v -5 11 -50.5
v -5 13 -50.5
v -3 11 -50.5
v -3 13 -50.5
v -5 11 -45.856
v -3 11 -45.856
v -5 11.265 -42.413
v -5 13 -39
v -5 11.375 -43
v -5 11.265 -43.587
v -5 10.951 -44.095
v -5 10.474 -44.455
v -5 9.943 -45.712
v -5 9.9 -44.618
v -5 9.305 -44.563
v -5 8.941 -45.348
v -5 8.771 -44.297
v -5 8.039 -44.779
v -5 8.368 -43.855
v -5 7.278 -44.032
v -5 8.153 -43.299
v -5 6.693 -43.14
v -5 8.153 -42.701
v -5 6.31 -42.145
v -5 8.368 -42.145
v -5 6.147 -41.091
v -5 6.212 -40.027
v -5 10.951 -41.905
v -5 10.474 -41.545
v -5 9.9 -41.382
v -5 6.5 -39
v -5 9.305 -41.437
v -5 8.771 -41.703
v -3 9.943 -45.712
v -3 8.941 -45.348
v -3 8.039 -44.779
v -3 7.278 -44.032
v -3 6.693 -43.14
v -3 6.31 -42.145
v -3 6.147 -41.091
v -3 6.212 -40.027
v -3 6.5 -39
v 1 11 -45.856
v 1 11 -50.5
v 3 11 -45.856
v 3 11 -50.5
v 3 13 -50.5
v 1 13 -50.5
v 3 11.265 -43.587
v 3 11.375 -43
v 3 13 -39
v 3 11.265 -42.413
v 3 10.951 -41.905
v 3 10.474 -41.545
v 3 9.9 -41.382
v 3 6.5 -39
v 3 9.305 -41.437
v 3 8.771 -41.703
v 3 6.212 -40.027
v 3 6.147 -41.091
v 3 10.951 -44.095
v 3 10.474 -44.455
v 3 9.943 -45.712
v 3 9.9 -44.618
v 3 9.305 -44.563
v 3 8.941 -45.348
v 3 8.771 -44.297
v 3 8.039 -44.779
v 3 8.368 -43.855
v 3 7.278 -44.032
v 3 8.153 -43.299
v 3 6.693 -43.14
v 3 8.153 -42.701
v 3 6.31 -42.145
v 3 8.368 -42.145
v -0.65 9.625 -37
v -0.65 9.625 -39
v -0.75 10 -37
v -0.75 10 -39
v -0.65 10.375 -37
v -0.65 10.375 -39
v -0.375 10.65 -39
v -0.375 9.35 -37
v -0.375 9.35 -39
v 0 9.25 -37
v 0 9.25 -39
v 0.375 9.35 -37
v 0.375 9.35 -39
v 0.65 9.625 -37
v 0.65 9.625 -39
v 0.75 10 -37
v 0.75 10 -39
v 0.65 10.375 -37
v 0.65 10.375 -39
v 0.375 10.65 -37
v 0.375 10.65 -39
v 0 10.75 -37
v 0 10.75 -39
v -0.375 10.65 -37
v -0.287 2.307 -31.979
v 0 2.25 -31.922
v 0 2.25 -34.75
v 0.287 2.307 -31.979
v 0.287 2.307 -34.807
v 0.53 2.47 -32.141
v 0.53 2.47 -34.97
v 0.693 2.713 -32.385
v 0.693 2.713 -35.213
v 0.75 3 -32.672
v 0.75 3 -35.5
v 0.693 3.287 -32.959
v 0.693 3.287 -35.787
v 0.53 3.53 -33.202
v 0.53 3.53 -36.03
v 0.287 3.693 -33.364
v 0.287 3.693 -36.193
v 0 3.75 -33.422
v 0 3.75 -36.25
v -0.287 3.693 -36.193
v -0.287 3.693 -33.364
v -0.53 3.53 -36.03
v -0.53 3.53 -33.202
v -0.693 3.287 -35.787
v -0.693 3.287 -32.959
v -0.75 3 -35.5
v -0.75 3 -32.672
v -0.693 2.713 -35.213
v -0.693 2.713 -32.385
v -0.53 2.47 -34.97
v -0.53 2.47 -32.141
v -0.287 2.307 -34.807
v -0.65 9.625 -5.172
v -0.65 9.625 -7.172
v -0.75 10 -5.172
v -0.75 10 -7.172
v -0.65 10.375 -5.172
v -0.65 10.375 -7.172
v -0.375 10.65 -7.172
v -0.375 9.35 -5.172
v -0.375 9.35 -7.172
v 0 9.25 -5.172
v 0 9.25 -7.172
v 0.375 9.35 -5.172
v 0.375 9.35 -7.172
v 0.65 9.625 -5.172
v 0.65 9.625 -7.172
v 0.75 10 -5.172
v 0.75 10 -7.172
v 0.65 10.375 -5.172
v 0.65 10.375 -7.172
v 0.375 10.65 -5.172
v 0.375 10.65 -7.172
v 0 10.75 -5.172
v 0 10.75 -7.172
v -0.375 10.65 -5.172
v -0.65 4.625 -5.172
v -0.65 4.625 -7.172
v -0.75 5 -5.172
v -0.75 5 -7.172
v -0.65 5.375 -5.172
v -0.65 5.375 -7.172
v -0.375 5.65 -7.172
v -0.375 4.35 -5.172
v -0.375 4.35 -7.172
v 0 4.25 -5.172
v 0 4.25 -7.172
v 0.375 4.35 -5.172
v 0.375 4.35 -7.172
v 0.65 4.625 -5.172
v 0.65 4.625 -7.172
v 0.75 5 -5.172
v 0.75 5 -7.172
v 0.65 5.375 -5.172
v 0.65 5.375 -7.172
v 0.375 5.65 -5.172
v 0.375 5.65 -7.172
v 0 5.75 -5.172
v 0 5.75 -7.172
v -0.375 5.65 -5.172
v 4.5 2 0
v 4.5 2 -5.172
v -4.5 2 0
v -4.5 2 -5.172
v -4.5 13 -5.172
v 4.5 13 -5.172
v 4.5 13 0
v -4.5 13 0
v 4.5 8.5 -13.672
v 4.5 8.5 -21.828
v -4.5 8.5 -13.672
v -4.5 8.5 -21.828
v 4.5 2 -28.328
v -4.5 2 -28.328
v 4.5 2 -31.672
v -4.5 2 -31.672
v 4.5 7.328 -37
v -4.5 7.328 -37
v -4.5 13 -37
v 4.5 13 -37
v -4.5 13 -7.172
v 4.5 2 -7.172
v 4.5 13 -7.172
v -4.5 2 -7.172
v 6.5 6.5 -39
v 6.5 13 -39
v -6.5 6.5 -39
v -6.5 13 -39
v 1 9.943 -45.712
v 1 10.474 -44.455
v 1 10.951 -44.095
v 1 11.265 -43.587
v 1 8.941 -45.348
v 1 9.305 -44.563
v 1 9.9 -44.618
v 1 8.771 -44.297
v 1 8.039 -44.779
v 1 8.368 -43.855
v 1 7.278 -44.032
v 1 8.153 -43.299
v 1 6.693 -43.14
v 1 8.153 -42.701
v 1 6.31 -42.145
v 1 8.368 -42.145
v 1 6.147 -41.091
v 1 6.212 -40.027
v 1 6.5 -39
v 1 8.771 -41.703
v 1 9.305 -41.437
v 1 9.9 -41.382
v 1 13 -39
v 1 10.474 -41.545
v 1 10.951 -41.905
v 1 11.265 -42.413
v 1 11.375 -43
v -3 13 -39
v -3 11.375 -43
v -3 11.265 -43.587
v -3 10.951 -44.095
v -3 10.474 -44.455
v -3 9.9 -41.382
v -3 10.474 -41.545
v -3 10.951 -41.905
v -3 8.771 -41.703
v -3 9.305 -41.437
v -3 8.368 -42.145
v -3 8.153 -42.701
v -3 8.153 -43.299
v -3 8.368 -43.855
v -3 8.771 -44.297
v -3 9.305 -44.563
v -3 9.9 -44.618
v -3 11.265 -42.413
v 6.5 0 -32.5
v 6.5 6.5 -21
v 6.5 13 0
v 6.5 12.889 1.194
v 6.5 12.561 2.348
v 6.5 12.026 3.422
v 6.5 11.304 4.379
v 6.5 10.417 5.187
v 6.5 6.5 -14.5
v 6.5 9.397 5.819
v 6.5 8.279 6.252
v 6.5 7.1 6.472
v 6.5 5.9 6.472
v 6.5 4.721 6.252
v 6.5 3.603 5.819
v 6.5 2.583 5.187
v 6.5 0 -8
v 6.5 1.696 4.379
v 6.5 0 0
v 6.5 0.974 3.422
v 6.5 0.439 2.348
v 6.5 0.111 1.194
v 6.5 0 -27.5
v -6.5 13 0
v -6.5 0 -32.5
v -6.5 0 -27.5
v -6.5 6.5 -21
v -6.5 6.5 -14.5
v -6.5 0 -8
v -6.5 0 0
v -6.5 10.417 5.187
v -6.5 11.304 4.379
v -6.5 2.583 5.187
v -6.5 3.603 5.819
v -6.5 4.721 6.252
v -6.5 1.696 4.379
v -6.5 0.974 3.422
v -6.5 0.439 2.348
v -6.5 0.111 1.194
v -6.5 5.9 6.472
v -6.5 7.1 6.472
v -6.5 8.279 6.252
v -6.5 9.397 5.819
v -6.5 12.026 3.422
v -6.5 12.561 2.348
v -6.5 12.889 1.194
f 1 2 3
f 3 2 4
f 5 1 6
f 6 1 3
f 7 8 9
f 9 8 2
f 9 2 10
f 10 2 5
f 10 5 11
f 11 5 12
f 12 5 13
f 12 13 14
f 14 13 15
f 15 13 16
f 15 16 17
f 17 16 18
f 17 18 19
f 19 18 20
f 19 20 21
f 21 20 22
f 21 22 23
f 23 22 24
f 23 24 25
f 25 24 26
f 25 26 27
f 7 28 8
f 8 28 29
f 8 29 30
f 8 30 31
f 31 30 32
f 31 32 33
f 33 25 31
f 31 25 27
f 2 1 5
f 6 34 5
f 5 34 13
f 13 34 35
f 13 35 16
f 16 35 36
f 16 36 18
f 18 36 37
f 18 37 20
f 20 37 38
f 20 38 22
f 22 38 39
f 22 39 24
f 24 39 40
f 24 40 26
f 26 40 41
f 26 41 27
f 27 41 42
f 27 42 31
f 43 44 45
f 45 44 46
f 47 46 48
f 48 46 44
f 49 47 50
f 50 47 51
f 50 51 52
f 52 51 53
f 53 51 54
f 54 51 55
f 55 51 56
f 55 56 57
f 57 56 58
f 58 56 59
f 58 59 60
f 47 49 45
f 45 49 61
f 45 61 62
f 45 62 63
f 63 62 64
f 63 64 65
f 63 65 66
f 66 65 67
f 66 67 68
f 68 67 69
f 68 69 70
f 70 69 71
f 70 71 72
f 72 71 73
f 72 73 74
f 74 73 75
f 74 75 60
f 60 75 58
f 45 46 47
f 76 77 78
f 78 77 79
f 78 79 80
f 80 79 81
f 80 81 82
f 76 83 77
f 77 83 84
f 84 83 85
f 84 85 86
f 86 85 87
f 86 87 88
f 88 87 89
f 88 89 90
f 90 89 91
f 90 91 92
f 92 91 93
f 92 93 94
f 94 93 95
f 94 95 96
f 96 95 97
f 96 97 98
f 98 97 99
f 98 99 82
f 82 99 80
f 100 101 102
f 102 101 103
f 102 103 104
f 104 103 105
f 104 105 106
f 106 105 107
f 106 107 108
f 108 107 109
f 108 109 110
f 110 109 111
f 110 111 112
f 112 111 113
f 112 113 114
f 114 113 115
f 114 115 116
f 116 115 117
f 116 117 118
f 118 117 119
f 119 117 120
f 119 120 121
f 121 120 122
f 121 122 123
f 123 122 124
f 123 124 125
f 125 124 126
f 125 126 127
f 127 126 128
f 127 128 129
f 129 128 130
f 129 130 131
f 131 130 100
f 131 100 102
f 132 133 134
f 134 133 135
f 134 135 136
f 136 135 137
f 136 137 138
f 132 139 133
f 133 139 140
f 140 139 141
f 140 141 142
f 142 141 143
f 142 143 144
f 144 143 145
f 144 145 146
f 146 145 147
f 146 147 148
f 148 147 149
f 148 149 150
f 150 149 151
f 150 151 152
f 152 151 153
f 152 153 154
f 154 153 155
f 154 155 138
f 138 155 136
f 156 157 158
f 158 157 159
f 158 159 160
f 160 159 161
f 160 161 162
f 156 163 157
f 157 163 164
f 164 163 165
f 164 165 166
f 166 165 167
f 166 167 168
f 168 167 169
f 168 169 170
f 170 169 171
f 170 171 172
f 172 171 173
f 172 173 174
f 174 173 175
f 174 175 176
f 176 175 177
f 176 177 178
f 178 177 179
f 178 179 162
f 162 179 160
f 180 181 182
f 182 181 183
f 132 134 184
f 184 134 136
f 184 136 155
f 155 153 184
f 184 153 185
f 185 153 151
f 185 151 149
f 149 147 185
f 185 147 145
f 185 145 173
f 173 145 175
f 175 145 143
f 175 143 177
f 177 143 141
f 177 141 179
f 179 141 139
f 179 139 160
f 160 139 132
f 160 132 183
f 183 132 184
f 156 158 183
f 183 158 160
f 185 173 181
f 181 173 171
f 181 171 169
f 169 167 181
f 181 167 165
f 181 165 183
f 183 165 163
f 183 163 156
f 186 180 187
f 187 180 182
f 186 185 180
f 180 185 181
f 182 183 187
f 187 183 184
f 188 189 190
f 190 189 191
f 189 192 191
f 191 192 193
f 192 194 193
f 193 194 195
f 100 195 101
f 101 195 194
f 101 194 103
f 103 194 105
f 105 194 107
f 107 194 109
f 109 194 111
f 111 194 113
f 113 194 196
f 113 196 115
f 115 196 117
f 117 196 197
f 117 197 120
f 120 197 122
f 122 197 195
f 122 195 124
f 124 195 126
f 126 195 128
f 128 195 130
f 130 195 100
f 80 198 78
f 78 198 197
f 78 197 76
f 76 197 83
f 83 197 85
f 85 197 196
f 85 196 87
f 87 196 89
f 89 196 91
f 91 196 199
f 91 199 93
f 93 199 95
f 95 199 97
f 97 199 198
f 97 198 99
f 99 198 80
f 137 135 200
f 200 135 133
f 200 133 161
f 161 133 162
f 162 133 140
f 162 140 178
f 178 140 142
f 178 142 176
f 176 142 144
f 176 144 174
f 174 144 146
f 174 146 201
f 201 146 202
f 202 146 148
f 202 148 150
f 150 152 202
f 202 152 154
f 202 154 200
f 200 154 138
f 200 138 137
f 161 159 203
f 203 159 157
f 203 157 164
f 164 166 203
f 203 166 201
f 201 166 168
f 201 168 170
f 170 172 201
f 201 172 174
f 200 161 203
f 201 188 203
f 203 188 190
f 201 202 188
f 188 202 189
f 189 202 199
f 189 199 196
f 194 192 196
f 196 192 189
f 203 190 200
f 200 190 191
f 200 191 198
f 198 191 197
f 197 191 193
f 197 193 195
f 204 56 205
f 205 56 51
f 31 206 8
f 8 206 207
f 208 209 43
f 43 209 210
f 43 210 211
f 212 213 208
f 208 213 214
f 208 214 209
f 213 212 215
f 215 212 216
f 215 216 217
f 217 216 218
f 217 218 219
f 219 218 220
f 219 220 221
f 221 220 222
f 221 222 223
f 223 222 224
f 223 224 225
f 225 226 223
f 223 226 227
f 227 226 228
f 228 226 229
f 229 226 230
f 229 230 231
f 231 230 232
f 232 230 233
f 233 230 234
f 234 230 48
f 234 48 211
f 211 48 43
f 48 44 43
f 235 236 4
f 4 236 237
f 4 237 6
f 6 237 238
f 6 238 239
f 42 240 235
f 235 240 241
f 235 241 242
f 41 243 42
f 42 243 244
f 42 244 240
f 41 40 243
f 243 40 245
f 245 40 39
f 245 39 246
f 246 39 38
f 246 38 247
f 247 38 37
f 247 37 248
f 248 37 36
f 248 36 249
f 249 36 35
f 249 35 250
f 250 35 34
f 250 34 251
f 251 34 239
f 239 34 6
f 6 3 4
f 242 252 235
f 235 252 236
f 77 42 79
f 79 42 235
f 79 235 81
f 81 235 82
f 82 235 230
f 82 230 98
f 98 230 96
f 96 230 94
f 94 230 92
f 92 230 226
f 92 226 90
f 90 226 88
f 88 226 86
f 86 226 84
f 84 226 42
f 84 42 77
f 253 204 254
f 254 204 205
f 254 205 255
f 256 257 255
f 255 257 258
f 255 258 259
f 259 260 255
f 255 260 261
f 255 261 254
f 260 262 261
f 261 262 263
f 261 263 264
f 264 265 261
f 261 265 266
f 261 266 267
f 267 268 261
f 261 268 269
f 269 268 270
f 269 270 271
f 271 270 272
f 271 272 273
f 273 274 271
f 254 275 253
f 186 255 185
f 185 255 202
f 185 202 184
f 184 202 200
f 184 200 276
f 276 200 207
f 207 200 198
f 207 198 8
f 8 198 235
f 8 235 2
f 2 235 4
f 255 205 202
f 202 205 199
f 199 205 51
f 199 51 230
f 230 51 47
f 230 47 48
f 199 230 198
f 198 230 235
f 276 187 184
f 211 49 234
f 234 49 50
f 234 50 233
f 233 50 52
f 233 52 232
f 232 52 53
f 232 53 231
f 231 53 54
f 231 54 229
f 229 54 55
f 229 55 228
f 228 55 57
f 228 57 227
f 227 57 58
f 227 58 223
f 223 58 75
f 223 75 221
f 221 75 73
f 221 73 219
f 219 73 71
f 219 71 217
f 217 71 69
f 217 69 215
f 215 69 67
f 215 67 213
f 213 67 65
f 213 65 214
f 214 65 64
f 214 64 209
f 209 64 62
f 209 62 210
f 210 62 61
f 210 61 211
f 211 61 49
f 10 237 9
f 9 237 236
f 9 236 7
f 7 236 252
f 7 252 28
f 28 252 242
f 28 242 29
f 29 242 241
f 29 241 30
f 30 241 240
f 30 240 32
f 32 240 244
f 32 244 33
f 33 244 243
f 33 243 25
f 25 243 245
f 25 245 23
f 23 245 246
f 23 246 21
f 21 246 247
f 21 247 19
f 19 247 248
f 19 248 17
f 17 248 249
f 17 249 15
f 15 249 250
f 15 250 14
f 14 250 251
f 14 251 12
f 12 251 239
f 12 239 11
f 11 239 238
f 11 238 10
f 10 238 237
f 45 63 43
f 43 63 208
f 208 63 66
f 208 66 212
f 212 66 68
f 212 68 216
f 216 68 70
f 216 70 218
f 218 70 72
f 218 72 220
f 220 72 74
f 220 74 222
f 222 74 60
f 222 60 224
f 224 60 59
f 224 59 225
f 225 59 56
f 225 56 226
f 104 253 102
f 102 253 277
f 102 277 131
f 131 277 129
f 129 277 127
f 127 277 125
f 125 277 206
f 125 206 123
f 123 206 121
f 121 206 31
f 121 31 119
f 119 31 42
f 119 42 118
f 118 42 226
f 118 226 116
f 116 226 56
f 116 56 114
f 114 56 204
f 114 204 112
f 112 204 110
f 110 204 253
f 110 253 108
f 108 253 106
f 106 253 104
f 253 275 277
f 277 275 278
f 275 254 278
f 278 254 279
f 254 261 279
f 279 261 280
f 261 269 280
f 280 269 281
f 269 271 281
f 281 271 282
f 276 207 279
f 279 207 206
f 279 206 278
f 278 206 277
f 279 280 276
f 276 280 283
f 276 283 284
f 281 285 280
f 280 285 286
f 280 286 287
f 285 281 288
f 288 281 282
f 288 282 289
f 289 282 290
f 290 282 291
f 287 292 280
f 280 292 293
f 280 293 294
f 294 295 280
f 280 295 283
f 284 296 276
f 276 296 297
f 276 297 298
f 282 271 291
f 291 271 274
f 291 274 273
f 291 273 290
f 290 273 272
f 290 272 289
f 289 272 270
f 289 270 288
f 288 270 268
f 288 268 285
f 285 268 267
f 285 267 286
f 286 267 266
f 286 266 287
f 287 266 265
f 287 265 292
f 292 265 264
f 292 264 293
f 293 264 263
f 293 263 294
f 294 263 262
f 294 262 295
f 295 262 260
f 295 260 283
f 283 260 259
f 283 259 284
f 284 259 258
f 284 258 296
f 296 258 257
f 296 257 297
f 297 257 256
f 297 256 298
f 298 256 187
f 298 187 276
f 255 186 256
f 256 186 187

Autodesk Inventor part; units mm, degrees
ref_plane "YZ Plane" through (0, 0, 0) normal (1, 0, 0) x (0, 1, 0)
ref_plane "XZ Plane" through (0, 0, 0) normal (0, 1, 0) x (-1, 0, 0)
sketch "Sketch2" plane through (0, 0, 0) normal (1, 0, 0) x (0, 1, 0)
  line L0 (0, 0) -> (0, -8)
  line L1 (13, 0) -> (13, -21)
  arc A0 (13, 0) -> (0, 0) centre (6.5, 0) ccw
  line L2 (-3.1385, 0) -> (18.8309, 0) projected
  line L3 (0, -58.4723) -> (0, 17.3287) projected
  line L4 (0, -8) -> (6.5, -14.5)
  line L5 (0, -8) -> (9.1924, -8) construction
  line L6 (6.5, -14.5) -> (6.5, -21)
  line L7 (6.5, -21) -> (0, -27.5)
  line L8 (6.5, -21) -> (15.6924, -21) construction
  line L9 (0, -27.5) -> (0, -32.5)
  line L10 (0, -32.5) -> (6.5, -39)
  line L11 (0, -32.5) -> (9.1924, -32.5) construction
  line L12 (13, -21) -> (13, -39)
  line L13 (13, -39) -> (13, -45.5)
  arc A1 (6.5, -39) -> (13, -45.5) centre (11.1419, -40.8581) ccw
  circle A2 centre (9.75, -43) radius 1.625
  dimension "d49" = 4
  dimension "d4" = 13
  dimension "d9" = 45
  dimension "d10" = 6.5
  dimension "d11" = 8
  dimension "d12" = 6.5
  dimension "d13" = 135
  dimension "d14" = 6.5
  dimension "d15" = 5
  dimension "d16" = 45
  dimension "d17" = 6.5
  dimension "d18" = 18
  dimension "d19" = 6.5
  dimension "d20" = 5
  dimension "d21" = 3.25
  dimension "d22" = 3.25
  dimension "d23" = 2.5
  dimension "d94" = 21
extrude "Extrusion1" add sketch "Sketch2" along normal mid plane 13 contours L2 L1 L12 L13 A1 L10 L3 L7 L6 L4 L0 | A0 L2
sketch "Sketch3" plane through (-6.5, 13, 0) normal (0, 1, 0) x (1, 0, 0)
  line L0 (0, 39) -> (13, 39) projected
  line L1 (0, 46) -> (1.5, 46)
  line L2 (1.5, 46) -> (1.5, 39)
  line L3 (1.5, 39) -> (0, 39)
  line L4 (0, 39) -> (0, 46)
  line L5 (0, 0) -> (0, 45.5) projected
  line L6 (3.5, 46) -> (7.5, 46)
  line L7 (7.5, 46) -> (7.5, 39)
  line L8 (7.5, 39) -> (3.5, 39)
  line L9 (3.5, 39) -> (3.5, 46)
  line L10 (9.5, 46) -> (13, 46)
  line L11 (13, 46) -> (13, 39)
  line L12 (13, 39) -> (9.5, 39)
  line L13 (9.5, 39) -> (9.5, 46)
  line L14 (13, 45.5) -> (13, 0) projected
  point P0 (6.5, 0)
  dimension "d47" = 1.5
  dimension "d48" = 7
  dimension "d49" = 4
  dimension "d50" = 7
  dimension "d51" = 2
  dimension "d52" = 7
  dimension "d53" = 2
extrude "Extrusion2" cut sketch "Sketch3" against normal blind 13
ref_plane "Work Plane1" through (4.5, 0, 0) normal (1, 0, 0) x (0, 0, -1)
sketch "Sketch4" plane through (4.5, 0, 0) normal (1, 0, 0) x (0, 0, -1)
  arc A0 (0, 13) -> (0, 0) centre (0, 6.5) ccw projected
  line L0 (0, 13) -> (39, 13) projected
  line L1 (39, 13) -> (39, 6.5) projected
  line L2 (39, 6.5) -> (32.5, 0) projected
  line L3 (32.5, 0) -> (27.5, 0) projected
  line L4 (27.5, 0) -> (21, 6.5) projected
  line L5 (39, 13) -> (39, 6.5) projected
  line L6 (39, 6.5) -> (32.5, 0) projected
  line L7 (32.5, 0) -> (27.5, 0) projected
  line L8 (27.5, 0) -> (21, 6.5) projected
  line L9 (21, 6.5) -> (14.5, 6.5) projected
  line L10 (14.5, 6.5) -> (8, 0) projected
  line L11 (8, 0) -> (0, 0) projected
  arc A1 (0, 13) -> (0, 0) centre (0, 6.5) ccw projected
  line L12 (0, 13) -> (39, 13) projected
  line L13 (0, 13) -> (0, 2)
  line L14 (0, 2) -> (5.1716, 2)
  line L15 (7.1716, 2) -> (13.6716, 8.5)
  line L16 (7.1716, 2) -> (16.364, 2) construction
  line L17 (37, 13) -> (37, 7.3284)
  line L18 (37, 7.3284) -> (31.6716, 2)
  line L19 (37, 7.3284) -> (44.5355, 7.3284) construction
  line L20 (31.6716, 2) -> (28.3284, 2)
  line L21 (28.3284, 2) -> (21.8284, 8.5)
  line L22 (28.3284, 2) -> (37.5208, 2) construction
  line L23 (21.8284, 8.5) -> (13.6716, 8.5)
  line L24 (7.1716, 2) -> (7.1716, 13)
  line L25 (5.1716, 2) -> (5.1716, 13)
  line L26 (0, 13) -> (5.1716, 13)
  line L27 (7.1716, 13) -> (37, 13)
  dimension "d57" = 11
  dimension "d58" = 2
  dimension "d59" = 45
  dimension "d60" = 2
  dimension "d62" = 2
  dimension "d63" = 2
  dimension "d64" = 135
  dimension "d65" = 2
  dimension "d66" = 2
  dimension "d67" = 135
  dimension "d95" = 2
  dimension "d96" = 2
extrude "Extrusion3" cut sketch "Sketch4" against normal blind 9 contours L0 L25 L14 L13 | L0 L17 L18 L20 L21 L23 L15 L24
sketch "Sketch5" plane through (4.5, 2, -7.1716) normal (0, 0, -1) x (-1, 0, 0)
  line L0 (0, 11) -> (0, 1) projected
  line L1 (9, 1) -> (9, 11) projected
  line L2 (0, 11) -> (0, 0) projected
  line L3 (9, 0) -> (9, 11) projected
  line L4 (0, 11) -> (9, 11) projected
  circle A0 centre (4.5, 8) radius 0.75
  circle A1 centre (4.5, 3) radius 0.75
  line L5 (0, 0) -> (9, 0) projected
  point P0 (4.5, -2)
  dimension "d72" = 1.5
  dimension "d73" = 4.5
  dimension "d74" = 3
  dimension "d75" = 1.5
  dimension "d77" = 4.5
extrude "Extrusion4" cut sketch "Sketch5" against normal blind 2 contours A0 | A1
sketch "Sketch6" plane through (1, 13, -39) normal (0, 0, -1) x (-1, 0, 0)
  line L0 (1, -15.6) -> (1, 2.6) projected
  line L1 (10.1, -13) -> (-8.1, -13) projected
  circle A0 centre (1, -3) radius 0.75
  line L2 (0, 0) -> (4, 0) projected
  circle A1 centre (1, -10) radius 0.75
  point P0 (1, -13)
  dimension "d80" = 1.5
  dimension "d81" = 3
  dimension "d82" = 1.5
  dimension "d83" = 3
extrude "Extrusion5" cut sketch "Sketch6" against normal blind 9
sketch "Sketch7" plane through (3, 13, -39) normal (1, 0, 0) x (0, 0, -1)
  line L0 (6.5, 0) -> (0, 0) projected
  line L1 (6.5, 0) -> (11.5, 0)
  line L2 (11.5, 0) -> (11.5, -2)
  line L3 (11.5, -2) -> (6.5, -2)
  line L4 (6.5, -2) -> (6.5, 0)
  point P0 (-39, -13)
  dimension "d86" = 5
  dimension "d87" = 2
extrude "Extrusion6" add sketch "Sketch7" against normal blind 2
sketch "Sketch8" plane through (-5, 13, -45.5) normal (-1, 0, 0) x (0, 0, 1)
  line L0 (0, 0) -> (6.5, 0) projected
  line L1 (-5, -2) -> (0, -2)
  line L2 (0, -2) -> (0, 0)
  line L3 (0, 0) -> (-5, 0)
  line L4 (-5, 0) -> (-5, -2)
  point P0 (45.5, -13)
  dimension "d90" = 5
  dimension "d91" = 2
extrude "Extrusion7" add sketch "Sketch8" against normal blind 2
properties part number "middle"
